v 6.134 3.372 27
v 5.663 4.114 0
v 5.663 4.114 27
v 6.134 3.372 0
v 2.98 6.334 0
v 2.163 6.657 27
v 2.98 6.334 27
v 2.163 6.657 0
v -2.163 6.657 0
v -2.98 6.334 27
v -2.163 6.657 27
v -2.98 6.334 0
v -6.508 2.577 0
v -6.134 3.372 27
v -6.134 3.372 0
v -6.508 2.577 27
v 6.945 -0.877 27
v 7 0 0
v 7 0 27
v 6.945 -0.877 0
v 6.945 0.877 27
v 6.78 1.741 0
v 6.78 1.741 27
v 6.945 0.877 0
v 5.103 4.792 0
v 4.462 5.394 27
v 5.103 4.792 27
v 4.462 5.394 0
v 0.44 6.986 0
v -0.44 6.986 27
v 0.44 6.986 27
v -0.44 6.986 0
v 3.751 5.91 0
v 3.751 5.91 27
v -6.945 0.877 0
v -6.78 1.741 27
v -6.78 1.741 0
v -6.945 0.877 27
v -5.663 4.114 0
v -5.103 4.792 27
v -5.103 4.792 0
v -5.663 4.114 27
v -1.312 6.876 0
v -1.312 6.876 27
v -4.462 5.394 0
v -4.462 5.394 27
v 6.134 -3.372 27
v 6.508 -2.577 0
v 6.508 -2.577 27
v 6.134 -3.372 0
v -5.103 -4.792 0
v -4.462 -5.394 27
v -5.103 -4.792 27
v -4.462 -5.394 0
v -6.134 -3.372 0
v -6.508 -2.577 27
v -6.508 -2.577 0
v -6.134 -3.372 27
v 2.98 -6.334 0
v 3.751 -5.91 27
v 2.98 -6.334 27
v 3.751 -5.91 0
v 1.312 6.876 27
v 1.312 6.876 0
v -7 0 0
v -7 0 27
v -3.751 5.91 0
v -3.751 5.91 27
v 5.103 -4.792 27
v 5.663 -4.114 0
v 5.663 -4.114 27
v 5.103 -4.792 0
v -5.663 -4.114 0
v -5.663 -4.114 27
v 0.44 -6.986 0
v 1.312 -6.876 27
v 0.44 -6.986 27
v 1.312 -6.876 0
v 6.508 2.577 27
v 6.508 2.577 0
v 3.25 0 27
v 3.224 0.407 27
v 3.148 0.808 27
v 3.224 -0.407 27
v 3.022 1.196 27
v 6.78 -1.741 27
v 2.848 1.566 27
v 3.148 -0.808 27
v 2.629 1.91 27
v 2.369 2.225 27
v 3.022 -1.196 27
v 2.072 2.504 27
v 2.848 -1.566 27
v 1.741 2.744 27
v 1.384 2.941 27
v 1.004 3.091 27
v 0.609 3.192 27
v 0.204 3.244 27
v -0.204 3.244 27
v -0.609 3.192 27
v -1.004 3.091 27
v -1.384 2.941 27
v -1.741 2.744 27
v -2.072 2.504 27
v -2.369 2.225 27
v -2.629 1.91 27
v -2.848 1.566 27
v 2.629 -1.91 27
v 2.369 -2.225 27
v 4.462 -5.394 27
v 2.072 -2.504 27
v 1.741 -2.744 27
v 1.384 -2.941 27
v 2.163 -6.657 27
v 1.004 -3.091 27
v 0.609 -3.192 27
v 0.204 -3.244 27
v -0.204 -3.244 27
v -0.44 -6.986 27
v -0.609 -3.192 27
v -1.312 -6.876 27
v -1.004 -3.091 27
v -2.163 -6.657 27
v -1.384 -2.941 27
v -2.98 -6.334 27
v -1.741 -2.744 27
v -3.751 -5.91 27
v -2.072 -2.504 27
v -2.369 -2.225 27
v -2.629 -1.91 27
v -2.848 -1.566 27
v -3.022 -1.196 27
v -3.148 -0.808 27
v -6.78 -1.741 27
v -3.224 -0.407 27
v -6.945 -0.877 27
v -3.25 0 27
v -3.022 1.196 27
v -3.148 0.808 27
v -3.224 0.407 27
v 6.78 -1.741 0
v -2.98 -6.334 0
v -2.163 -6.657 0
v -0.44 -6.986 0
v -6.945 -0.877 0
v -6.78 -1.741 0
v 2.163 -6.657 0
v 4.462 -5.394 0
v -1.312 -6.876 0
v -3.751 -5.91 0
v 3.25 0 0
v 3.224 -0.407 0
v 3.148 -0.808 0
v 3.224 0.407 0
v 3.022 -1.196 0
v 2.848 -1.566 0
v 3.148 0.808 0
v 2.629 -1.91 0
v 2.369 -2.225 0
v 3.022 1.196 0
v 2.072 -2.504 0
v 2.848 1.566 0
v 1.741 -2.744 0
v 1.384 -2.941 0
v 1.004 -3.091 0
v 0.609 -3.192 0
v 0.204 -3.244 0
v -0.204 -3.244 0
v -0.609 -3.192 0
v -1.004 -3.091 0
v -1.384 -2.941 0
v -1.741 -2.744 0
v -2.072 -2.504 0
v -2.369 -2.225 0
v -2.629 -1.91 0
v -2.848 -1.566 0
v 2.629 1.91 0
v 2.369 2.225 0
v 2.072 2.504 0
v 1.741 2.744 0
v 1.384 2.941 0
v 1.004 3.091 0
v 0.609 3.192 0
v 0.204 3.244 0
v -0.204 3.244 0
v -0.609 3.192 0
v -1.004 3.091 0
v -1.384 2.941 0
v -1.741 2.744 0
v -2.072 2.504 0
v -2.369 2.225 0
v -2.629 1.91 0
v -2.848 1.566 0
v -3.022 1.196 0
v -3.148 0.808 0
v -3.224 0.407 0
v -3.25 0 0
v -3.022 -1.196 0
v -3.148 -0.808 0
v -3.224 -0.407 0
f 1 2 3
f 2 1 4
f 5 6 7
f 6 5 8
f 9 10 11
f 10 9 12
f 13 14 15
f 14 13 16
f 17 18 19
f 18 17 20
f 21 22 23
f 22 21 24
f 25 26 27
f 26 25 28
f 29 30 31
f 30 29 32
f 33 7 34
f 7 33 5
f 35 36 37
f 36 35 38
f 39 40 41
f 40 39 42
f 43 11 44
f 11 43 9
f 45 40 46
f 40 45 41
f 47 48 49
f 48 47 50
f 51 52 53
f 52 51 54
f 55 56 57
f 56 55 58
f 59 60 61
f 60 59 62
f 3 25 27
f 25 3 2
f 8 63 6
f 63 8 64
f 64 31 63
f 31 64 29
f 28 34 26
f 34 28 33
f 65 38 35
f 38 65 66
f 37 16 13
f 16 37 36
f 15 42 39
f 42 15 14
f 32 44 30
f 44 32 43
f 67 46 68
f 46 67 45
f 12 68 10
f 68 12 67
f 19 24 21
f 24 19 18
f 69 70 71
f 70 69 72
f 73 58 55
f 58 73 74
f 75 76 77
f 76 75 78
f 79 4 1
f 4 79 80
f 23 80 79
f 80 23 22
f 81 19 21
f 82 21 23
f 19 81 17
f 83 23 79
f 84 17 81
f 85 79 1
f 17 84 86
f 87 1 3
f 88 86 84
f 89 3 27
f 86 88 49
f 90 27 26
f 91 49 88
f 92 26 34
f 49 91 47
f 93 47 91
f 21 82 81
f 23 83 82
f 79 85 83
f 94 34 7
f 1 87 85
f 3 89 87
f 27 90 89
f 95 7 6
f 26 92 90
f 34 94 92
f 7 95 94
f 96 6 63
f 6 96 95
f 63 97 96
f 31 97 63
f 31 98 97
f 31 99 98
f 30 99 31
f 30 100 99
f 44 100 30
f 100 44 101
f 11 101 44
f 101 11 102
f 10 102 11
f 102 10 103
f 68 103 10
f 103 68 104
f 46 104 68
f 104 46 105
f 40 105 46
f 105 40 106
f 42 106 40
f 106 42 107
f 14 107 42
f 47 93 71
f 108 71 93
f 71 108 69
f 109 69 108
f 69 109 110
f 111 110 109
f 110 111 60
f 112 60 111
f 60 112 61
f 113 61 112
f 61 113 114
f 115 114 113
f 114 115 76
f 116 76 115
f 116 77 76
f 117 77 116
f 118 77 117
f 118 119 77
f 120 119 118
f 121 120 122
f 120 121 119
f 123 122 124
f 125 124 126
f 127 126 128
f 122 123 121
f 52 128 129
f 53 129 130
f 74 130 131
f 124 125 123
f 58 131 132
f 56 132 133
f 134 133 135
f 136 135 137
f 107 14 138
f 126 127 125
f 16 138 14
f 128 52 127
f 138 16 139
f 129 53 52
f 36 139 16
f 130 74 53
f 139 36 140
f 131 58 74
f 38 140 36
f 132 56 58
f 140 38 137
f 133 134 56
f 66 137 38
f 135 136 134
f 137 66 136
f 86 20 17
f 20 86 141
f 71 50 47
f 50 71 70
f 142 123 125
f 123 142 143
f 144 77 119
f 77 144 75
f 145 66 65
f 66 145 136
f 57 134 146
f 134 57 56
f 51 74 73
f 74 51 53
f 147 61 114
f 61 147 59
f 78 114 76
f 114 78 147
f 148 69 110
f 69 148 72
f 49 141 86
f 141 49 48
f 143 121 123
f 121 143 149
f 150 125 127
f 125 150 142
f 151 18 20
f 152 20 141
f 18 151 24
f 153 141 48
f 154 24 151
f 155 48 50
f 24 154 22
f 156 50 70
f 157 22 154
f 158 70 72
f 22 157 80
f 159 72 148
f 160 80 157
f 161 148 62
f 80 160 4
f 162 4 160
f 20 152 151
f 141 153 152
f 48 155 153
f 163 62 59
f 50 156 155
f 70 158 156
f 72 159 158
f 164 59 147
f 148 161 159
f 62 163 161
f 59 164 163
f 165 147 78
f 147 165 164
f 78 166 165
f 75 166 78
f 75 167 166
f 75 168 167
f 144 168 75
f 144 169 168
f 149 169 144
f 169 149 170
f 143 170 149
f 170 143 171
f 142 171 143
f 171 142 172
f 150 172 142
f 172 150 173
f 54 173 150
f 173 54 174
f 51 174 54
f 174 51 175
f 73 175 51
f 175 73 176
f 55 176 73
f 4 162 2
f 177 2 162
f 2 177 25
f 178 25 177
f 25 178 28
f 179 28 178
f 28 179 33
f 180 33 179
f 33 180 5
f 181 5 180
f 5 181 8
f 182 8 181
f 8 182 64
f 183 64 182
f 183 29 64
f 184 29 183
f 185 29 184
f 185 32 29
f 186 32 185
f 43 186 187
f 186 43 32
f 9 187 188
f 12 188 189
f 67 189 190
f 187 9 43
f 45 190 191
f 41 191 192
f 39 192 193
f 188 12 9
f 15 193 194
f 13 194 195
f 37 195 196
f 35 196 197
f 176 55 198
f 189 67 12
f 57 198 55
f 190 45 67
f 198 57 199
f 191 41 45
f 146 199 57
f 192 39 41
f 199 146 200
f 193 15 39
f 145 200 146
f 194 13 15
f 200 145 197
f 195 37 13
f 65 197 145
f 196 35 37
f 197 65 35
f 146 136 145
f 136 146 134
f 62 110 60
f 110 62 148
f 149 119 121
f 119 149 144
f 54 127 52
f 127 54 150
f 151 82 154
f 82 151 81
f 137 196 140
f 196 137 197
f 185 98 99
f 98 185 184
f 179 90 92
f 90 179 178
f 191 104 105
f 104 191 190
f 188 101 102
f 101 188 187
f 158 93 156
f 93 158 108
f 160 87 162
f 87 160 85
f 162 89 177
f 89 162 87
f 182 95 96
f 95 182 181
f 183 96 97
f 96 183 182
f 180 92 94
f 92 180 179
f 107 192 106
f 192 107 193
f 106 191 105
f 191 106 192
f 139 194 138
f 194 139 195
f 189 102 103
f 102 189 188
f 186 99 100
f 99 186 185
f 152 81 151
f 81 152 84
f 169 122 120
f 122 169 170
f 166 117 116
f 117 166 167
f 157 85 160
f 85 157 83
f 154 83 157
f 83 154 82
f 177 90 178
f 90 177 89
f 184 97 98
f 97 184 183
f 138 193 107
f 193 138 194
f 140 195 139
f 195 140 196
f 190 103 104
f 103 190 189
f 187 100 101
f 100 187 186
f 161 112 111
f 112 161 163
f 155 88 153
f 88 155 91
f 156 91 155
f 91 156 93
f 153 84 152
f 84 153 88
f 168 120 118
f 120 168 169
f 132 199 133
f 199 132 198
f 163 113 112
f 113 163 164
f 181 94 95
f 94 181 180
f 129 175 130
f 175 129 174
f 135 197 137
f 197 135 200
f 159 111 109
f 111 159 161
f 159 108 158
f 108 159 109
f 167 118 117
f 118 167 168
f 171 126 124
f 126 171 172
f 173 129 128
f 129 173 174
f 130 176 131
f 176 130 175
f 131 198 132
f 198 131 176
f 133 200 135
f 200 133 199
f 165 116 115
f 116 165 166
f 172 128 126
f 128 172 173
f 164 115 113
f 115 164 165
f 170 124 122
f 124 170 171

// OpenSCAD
$fn = 50;


difference() {
	union() {
		cylinder(h = 27, r = 7.0000000000);
	}
	union() {
		translate(v = [0, 0, -100]) {
			cylinder(h = 200, r = 3.2500000000);
		}
	}
}
